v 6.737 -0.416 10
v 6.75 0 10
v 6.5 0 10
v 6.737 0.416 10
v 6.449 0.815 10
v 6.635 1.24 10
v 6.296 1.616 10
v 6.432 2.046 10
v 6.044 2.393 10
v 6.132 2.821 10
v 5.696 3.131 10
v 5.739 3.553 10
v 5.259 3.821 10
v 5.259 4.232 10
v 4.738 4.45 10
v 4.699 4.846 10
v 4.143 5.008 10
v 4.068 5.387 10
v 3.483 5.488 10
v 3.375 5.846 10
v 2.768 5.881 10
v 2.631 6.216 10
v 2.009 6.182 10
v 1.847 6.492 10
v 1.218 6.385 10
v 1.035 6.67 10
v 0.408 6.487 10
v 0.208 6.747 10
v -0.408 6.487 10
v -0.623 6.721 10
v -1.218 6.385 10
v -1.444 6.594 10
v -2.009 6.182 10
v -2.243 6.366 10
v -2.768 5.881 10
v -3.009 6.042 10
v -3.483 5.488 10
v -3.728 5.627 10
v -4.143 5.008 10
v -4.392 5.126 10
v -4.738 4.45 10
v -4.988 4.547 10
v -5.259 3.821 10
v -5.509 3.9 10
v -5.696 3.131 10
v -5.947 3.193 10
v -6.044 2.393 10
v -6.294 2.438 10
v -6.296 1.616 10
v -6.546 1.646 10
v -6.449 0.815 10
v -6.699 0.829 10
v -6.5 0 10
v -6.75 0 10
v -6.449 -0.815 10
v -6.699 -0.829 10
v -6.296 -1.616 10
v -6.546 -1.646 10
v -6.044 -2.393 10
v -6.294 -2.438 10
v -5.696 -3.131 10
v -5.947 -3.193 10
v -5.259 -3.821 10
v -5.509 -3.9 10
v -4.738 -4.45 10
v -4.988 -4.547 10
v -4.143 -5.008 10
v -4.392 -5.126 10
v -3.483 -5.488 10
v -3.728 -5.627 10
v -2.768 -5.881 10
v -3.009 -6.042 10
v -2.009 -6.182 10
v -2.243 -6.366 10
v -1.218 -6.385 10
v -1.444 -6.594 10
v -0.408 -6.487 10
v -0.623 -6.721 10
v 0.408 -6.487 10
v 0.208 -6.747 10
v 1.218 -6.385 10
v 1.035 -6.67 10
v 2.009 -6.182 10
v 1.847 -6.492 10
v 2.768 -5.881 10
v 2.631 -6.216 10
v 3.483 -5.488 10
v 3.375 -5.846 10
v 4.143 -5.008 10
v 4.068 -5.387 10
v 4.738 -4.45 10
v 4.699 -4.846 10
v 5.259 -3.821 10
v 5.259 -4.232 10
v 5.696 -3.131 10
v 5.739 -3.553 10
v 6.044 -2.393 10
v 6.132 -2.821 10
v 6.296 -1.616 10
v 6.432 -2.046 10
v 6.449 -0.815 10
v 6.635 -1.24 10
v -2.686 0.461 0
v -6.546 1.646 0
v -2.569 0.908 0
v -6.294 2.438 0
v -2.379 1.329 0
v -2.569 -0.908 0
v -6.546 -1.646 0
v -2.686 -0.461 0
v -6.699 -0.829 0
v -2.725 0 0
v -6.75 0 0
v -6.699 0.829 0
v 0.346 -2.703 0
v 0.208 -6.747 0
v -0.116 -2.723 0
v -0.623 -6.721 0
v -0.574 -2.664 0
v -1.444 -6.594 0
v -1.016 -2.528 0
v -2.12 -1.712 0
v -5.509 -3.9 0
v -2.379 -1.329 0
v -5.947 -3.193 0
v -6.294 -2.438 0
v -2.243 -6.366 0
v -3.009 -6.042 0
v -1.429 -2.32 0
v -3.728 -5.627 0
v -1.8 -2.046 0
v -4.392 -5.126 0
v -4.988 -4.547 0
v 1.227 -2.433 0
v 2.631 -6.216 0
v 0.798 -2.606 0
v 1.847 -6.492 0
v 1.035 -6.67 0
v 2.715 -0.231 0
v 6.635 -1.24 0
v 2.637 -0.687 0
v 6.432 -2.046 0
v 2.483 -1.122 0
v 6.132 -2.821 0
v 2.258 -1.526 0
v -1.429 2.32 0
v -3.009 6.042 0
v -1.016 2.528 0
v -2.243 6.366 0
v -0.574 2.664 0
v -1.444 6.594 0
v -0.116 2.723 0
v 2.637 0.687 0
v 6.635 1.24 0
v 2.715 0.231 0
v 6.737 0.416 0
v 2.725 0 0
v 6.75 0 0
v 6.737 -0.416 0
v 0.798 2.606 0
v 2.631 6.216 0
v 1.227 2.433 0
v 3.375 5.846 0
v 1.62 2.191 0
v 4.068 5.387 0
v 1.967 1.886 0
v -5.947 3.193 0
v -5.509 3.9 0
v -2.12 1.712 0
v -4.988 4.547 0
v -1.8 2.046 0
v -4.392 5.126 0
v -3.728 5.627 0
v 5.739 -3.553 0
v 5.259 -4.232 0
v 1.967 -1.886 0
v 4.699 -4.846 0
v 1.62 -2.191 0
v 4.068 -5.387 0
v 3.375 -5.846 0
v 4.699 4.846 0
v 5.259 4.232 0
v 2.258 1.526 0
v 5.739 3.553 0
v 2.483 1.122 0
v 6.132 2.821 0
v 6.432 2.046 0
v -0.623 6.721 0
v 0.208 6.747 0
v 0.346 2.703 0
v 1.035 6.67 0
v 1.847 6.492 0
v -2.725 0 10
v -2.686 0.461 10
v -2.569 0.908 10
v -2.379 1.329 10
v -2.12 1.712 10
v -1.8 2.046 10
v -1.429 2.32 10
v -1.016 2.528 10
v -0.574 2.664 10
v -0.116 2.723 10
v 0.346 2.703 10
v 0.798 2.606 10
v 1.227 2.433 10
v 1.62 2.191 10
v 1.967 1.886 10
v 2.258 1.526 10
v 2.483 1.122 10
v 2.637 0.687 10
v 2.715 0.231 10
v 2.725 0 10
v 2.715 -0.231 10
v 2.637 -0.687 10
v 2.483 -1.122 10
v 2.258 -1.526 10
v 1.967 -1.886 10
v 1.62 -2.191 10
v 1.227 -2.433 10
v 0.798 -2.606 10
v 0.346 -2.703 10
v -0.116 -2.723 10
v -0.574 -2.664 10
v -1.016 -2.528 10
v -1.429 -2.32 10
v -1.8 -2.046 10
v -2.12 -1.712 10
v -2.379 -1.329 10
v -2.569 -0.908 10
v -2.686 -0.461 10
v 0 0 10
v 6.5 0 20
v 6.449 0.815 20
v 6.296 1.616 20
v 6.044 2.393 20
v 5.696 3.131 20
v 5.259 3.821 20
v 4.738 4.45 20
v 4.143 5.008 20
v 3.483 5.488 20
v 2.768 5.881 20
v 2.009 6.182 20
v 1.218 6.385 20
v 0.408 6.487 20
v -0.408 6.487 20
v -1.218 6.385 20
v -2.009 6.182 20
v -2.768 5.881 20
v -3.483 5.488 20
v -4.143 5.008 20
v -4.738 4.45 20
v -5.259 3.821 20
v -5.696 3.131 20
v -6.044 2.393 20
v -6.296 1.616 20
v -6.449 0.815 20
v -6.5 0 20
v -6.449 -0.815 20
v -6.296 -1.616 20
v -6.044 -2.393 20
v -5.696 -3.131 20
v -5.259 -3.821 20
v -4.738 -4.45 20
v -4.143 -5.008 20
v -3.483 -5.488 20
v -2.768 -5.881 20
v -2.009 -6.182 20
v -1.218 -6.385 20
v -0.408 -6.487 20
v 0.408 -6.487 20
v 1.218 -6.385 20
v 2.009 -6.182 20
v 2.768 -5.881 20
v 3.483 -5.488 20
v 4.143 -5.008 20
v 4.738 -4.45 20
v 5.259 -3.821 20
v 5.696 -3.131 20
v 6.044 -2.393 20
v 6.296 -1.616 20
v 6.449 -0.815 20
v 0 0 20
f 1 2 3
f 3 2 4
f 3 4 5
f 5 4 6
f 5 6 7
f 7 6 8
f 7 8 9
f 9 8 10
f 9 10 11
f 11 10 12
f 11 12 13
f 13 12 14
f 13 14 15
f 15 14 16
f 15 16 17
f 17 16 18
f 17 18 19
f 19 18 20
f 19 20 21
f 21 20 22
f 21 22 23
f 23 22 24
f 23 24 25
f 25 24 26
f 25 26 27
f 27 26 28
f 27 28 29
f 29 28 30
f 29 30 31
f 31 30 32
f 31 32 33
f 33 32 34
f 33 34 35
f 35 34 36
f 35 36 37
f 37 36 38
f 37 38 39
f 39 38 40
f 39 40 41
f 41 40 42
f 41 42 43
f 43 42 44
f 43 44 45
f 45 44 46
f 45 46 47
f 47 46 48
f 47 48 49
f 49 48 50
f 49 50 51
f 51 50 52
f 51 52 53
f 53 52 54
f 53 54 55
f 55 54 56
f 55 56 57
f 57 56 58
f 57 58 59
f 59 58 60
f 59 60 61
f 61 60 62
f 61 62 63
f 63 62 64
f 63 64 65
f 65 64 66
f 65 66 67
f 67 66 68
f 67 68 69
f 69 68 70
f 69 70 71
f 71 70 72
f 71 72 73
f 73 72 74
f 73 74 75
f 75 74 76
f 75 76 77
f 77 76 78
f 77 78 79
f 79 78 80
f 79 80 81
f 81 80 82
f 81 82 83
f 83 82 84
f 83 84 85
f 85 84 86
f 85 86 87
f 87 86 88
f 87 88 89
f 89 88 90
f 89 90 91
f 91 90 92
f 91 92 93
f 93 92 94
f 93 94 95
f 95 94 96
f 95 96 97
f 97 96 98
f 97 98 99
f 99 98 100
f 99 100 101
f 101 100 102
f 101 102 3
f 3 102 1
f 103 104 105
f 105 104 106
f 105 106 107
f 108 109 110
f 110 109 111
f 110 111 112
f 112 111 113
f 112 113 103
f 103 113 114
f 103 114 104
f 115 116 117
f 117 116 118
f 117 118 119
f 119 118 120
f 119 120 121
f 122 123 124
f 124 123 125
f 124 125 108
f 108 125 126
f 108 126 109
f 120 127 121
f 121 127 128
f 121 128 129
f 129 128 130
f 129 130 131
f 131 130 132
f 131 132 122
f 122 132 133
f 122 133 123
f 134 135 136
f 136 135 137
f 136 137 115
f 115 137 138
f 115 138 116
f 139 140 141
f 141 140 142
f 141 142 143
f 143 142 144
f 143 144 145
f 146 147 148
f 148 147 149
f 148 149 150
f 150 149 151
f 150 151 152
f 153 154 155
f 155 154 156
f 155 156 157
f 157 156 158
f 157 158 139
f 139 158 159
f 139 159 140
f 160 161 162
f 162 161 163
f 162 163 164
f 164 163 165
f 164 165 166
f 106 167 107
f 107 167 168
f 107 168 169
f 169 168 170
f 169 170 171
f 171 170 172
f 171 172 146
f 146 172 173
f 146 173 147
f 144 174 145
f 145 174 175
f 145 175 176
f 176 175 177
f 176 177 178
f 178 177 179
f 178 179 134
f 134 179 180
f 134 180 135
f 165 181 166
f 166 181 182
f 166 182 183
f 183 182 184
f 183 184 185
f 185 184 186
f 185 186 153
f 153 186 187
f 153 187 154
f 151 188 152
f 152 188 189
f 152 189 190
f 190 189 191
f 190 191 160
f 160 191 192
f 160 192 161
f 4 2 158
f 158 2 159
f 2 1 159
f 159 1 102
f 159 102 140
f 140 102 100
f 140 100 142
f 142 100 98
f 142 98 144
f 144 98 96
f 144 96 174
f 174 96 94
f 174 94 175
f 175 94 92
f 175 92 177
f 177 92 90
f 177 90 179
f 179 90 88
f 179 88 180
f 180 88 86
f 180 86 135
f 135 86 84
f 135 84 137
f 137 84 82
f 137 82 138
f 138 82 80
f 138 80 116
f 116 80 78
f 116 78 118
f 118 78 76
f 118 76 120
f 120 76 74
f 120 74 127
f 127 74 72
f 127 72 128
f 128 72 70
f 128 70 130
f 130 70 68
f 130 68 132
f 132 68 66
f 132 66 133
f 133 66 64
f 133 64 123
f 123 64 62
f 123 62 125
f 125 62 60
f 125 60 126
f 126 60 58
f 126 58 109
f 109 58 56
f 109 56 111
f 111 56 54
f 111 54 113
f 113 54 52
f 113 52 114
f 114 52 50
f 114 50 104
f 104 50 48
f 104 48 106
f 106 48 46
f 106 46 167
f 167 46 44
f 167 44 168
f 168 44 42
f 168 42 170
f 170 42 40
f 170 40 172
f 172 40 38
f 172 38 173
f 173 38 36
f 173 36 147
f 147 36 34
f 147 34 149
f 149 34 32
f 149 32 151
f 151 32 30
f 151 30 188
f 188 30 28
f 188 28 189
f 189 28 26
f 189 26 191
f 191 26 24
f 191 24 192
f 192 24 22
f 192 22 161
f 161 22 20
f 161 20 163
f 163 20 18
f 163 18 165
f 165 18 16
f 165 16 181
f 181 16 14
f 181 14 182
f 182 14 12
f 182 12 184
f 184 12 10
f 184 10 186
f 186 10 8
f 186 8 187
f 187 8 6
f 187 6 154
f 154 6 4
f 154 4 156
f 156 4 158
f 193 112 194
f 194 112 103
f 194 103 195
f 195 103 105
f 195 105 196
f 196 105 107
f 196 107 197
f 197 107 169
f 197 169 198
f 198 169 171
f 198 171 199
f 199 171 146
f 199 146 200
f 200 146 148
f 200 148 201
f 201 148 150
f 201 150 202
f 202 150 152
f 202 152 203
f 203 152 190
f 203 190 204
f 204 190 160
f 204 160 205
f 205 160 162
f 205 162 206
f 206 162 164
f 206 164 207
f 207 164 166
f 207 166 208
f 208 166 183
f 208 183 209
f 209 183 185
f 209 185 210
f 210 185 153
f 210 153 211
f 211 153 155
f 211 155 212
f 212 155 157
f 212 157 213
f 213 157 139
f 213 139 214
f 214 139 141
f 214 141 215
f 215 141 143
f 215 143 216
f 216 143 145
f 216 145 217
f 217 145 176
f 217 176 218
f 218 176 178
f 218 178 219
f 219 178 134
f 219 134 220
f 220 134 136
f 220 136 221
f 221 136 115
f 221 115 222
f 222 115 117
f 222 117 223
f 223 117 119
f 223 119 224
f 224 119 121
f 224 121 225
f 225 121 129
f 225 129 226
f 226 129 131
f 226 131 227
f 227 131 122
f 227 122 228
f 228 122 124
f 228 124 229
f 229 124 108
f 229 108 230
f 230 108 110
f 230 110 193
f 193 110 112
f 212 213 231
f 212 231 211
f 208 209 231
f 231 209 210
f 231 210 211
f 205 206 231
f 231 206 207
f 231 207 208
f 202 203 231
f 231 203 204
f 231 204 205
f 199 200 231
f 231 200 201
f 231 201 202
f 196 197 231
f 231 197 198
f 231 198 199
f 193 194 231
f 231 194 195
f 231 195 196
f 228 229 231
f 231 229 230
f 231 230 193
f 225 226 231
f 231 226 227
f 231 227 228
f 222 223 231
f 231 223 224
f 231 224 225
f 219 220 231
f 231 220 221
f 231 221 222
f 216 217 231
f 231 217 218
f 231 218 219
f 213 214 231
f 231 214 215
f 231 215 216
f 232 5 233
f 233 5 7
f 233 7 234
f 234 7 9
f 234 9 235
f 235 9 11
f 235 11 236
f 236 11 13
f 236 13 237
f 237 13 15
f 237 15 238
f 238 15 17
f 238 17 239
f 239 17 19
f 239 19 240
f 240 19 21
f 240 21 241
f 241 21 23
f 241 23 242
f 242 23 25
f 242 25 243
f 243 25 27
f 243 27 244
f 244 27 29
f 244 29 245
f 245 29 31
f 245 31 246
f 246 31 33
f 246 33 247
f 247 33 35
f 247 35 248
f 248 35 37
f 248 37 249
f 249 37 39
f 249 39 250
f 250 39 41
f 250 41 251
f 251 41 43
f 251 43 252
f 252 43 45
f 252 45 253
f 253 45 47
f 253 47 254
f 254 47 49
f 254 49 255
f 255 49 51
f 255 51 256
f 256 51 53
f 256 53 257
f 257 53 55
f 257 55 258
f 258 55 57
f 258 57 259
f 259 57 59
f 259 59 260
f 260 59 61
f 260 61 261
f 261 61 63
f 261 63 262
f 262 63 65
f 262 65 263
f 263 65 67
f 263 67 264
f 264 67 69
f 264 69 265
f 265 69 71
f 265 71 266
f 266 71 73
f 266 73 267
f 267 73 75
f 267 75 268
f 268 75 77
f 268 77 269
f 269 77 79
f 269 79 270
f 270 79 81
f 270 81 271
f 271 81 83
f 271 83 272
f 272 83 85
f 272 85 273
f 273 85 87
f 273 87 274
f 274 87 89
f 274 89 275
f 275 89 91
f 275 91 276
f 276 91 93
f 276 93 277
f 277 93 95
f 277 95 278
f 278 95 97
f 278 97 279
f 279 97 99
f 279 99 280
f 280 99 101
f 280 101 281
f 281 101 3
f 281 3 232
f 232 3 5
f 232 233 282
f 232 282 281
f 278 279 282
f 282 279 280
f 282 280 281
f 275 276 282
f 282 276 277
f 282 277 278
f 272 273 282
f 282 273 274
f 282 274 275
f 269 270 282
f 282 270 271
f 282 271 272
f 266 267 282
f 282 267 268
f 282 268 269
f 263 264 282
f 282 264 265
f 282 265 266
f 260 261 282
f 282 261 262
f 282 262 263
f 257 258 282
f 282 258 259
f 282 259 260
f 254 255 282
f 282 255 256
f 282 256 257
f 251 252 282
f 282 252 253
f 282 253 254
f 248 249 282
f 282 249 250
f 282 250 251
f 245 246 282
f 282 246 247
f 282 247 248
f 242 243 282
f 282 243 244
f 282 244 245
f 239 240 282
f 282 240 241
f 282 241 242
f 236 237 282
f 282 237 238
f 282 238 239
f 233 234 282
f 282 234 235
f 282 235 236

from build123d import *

# Parameters (mm, degrees)
SKETCH1_R           = 6.75
SKETCH1_R_2         = 2.725
BOSS_EXTRUDE2_DEPTH = 10
SKETCH2_R           = 6.6
BOSS_EXTRUDE3_DEPTH = 10
CUT_EXTRUDE1_START  = -10
SKETCH3_R           = 6.6
SKETCH3_R_2         = 6.5
CUT_EXTRUDE1_DEPTH  = 10


with BuildPart() as part:
    # Sketch1 → Boss-Extrude2 (new body)
    with BuildSketch(Plane.XY):
        Circle(SKETCH1_R)
        Circle(SKETCH1_R_2, mode=Mode.SUBTRACT)
    extrude(amount=BOSS_EXTRUDE2_DEPTH)

    # Sketch2 → Boss-Extrude3 (add)
    with BuildSketch(Plane.XY.offset(10)):
        Circle(SKETCH2_R)
    extrude(amount=BOSS_EXTRUDE3_DEPTH)

    # Sketch3 → Cut-Extrude1 (cut)
    with BuildSketch(Plane.XY.offset(20).offset(CUT_EXTRUDE1_START)):
        Circle(SKETCH3_R)
        Circle(SKETCH3_R_2, mode=Mode.SUBTRACT)
    extrude(amount=CUT_EXTRUDE1_DEPTH, mode=Mode.SUBTRACT)


solid = part.part
